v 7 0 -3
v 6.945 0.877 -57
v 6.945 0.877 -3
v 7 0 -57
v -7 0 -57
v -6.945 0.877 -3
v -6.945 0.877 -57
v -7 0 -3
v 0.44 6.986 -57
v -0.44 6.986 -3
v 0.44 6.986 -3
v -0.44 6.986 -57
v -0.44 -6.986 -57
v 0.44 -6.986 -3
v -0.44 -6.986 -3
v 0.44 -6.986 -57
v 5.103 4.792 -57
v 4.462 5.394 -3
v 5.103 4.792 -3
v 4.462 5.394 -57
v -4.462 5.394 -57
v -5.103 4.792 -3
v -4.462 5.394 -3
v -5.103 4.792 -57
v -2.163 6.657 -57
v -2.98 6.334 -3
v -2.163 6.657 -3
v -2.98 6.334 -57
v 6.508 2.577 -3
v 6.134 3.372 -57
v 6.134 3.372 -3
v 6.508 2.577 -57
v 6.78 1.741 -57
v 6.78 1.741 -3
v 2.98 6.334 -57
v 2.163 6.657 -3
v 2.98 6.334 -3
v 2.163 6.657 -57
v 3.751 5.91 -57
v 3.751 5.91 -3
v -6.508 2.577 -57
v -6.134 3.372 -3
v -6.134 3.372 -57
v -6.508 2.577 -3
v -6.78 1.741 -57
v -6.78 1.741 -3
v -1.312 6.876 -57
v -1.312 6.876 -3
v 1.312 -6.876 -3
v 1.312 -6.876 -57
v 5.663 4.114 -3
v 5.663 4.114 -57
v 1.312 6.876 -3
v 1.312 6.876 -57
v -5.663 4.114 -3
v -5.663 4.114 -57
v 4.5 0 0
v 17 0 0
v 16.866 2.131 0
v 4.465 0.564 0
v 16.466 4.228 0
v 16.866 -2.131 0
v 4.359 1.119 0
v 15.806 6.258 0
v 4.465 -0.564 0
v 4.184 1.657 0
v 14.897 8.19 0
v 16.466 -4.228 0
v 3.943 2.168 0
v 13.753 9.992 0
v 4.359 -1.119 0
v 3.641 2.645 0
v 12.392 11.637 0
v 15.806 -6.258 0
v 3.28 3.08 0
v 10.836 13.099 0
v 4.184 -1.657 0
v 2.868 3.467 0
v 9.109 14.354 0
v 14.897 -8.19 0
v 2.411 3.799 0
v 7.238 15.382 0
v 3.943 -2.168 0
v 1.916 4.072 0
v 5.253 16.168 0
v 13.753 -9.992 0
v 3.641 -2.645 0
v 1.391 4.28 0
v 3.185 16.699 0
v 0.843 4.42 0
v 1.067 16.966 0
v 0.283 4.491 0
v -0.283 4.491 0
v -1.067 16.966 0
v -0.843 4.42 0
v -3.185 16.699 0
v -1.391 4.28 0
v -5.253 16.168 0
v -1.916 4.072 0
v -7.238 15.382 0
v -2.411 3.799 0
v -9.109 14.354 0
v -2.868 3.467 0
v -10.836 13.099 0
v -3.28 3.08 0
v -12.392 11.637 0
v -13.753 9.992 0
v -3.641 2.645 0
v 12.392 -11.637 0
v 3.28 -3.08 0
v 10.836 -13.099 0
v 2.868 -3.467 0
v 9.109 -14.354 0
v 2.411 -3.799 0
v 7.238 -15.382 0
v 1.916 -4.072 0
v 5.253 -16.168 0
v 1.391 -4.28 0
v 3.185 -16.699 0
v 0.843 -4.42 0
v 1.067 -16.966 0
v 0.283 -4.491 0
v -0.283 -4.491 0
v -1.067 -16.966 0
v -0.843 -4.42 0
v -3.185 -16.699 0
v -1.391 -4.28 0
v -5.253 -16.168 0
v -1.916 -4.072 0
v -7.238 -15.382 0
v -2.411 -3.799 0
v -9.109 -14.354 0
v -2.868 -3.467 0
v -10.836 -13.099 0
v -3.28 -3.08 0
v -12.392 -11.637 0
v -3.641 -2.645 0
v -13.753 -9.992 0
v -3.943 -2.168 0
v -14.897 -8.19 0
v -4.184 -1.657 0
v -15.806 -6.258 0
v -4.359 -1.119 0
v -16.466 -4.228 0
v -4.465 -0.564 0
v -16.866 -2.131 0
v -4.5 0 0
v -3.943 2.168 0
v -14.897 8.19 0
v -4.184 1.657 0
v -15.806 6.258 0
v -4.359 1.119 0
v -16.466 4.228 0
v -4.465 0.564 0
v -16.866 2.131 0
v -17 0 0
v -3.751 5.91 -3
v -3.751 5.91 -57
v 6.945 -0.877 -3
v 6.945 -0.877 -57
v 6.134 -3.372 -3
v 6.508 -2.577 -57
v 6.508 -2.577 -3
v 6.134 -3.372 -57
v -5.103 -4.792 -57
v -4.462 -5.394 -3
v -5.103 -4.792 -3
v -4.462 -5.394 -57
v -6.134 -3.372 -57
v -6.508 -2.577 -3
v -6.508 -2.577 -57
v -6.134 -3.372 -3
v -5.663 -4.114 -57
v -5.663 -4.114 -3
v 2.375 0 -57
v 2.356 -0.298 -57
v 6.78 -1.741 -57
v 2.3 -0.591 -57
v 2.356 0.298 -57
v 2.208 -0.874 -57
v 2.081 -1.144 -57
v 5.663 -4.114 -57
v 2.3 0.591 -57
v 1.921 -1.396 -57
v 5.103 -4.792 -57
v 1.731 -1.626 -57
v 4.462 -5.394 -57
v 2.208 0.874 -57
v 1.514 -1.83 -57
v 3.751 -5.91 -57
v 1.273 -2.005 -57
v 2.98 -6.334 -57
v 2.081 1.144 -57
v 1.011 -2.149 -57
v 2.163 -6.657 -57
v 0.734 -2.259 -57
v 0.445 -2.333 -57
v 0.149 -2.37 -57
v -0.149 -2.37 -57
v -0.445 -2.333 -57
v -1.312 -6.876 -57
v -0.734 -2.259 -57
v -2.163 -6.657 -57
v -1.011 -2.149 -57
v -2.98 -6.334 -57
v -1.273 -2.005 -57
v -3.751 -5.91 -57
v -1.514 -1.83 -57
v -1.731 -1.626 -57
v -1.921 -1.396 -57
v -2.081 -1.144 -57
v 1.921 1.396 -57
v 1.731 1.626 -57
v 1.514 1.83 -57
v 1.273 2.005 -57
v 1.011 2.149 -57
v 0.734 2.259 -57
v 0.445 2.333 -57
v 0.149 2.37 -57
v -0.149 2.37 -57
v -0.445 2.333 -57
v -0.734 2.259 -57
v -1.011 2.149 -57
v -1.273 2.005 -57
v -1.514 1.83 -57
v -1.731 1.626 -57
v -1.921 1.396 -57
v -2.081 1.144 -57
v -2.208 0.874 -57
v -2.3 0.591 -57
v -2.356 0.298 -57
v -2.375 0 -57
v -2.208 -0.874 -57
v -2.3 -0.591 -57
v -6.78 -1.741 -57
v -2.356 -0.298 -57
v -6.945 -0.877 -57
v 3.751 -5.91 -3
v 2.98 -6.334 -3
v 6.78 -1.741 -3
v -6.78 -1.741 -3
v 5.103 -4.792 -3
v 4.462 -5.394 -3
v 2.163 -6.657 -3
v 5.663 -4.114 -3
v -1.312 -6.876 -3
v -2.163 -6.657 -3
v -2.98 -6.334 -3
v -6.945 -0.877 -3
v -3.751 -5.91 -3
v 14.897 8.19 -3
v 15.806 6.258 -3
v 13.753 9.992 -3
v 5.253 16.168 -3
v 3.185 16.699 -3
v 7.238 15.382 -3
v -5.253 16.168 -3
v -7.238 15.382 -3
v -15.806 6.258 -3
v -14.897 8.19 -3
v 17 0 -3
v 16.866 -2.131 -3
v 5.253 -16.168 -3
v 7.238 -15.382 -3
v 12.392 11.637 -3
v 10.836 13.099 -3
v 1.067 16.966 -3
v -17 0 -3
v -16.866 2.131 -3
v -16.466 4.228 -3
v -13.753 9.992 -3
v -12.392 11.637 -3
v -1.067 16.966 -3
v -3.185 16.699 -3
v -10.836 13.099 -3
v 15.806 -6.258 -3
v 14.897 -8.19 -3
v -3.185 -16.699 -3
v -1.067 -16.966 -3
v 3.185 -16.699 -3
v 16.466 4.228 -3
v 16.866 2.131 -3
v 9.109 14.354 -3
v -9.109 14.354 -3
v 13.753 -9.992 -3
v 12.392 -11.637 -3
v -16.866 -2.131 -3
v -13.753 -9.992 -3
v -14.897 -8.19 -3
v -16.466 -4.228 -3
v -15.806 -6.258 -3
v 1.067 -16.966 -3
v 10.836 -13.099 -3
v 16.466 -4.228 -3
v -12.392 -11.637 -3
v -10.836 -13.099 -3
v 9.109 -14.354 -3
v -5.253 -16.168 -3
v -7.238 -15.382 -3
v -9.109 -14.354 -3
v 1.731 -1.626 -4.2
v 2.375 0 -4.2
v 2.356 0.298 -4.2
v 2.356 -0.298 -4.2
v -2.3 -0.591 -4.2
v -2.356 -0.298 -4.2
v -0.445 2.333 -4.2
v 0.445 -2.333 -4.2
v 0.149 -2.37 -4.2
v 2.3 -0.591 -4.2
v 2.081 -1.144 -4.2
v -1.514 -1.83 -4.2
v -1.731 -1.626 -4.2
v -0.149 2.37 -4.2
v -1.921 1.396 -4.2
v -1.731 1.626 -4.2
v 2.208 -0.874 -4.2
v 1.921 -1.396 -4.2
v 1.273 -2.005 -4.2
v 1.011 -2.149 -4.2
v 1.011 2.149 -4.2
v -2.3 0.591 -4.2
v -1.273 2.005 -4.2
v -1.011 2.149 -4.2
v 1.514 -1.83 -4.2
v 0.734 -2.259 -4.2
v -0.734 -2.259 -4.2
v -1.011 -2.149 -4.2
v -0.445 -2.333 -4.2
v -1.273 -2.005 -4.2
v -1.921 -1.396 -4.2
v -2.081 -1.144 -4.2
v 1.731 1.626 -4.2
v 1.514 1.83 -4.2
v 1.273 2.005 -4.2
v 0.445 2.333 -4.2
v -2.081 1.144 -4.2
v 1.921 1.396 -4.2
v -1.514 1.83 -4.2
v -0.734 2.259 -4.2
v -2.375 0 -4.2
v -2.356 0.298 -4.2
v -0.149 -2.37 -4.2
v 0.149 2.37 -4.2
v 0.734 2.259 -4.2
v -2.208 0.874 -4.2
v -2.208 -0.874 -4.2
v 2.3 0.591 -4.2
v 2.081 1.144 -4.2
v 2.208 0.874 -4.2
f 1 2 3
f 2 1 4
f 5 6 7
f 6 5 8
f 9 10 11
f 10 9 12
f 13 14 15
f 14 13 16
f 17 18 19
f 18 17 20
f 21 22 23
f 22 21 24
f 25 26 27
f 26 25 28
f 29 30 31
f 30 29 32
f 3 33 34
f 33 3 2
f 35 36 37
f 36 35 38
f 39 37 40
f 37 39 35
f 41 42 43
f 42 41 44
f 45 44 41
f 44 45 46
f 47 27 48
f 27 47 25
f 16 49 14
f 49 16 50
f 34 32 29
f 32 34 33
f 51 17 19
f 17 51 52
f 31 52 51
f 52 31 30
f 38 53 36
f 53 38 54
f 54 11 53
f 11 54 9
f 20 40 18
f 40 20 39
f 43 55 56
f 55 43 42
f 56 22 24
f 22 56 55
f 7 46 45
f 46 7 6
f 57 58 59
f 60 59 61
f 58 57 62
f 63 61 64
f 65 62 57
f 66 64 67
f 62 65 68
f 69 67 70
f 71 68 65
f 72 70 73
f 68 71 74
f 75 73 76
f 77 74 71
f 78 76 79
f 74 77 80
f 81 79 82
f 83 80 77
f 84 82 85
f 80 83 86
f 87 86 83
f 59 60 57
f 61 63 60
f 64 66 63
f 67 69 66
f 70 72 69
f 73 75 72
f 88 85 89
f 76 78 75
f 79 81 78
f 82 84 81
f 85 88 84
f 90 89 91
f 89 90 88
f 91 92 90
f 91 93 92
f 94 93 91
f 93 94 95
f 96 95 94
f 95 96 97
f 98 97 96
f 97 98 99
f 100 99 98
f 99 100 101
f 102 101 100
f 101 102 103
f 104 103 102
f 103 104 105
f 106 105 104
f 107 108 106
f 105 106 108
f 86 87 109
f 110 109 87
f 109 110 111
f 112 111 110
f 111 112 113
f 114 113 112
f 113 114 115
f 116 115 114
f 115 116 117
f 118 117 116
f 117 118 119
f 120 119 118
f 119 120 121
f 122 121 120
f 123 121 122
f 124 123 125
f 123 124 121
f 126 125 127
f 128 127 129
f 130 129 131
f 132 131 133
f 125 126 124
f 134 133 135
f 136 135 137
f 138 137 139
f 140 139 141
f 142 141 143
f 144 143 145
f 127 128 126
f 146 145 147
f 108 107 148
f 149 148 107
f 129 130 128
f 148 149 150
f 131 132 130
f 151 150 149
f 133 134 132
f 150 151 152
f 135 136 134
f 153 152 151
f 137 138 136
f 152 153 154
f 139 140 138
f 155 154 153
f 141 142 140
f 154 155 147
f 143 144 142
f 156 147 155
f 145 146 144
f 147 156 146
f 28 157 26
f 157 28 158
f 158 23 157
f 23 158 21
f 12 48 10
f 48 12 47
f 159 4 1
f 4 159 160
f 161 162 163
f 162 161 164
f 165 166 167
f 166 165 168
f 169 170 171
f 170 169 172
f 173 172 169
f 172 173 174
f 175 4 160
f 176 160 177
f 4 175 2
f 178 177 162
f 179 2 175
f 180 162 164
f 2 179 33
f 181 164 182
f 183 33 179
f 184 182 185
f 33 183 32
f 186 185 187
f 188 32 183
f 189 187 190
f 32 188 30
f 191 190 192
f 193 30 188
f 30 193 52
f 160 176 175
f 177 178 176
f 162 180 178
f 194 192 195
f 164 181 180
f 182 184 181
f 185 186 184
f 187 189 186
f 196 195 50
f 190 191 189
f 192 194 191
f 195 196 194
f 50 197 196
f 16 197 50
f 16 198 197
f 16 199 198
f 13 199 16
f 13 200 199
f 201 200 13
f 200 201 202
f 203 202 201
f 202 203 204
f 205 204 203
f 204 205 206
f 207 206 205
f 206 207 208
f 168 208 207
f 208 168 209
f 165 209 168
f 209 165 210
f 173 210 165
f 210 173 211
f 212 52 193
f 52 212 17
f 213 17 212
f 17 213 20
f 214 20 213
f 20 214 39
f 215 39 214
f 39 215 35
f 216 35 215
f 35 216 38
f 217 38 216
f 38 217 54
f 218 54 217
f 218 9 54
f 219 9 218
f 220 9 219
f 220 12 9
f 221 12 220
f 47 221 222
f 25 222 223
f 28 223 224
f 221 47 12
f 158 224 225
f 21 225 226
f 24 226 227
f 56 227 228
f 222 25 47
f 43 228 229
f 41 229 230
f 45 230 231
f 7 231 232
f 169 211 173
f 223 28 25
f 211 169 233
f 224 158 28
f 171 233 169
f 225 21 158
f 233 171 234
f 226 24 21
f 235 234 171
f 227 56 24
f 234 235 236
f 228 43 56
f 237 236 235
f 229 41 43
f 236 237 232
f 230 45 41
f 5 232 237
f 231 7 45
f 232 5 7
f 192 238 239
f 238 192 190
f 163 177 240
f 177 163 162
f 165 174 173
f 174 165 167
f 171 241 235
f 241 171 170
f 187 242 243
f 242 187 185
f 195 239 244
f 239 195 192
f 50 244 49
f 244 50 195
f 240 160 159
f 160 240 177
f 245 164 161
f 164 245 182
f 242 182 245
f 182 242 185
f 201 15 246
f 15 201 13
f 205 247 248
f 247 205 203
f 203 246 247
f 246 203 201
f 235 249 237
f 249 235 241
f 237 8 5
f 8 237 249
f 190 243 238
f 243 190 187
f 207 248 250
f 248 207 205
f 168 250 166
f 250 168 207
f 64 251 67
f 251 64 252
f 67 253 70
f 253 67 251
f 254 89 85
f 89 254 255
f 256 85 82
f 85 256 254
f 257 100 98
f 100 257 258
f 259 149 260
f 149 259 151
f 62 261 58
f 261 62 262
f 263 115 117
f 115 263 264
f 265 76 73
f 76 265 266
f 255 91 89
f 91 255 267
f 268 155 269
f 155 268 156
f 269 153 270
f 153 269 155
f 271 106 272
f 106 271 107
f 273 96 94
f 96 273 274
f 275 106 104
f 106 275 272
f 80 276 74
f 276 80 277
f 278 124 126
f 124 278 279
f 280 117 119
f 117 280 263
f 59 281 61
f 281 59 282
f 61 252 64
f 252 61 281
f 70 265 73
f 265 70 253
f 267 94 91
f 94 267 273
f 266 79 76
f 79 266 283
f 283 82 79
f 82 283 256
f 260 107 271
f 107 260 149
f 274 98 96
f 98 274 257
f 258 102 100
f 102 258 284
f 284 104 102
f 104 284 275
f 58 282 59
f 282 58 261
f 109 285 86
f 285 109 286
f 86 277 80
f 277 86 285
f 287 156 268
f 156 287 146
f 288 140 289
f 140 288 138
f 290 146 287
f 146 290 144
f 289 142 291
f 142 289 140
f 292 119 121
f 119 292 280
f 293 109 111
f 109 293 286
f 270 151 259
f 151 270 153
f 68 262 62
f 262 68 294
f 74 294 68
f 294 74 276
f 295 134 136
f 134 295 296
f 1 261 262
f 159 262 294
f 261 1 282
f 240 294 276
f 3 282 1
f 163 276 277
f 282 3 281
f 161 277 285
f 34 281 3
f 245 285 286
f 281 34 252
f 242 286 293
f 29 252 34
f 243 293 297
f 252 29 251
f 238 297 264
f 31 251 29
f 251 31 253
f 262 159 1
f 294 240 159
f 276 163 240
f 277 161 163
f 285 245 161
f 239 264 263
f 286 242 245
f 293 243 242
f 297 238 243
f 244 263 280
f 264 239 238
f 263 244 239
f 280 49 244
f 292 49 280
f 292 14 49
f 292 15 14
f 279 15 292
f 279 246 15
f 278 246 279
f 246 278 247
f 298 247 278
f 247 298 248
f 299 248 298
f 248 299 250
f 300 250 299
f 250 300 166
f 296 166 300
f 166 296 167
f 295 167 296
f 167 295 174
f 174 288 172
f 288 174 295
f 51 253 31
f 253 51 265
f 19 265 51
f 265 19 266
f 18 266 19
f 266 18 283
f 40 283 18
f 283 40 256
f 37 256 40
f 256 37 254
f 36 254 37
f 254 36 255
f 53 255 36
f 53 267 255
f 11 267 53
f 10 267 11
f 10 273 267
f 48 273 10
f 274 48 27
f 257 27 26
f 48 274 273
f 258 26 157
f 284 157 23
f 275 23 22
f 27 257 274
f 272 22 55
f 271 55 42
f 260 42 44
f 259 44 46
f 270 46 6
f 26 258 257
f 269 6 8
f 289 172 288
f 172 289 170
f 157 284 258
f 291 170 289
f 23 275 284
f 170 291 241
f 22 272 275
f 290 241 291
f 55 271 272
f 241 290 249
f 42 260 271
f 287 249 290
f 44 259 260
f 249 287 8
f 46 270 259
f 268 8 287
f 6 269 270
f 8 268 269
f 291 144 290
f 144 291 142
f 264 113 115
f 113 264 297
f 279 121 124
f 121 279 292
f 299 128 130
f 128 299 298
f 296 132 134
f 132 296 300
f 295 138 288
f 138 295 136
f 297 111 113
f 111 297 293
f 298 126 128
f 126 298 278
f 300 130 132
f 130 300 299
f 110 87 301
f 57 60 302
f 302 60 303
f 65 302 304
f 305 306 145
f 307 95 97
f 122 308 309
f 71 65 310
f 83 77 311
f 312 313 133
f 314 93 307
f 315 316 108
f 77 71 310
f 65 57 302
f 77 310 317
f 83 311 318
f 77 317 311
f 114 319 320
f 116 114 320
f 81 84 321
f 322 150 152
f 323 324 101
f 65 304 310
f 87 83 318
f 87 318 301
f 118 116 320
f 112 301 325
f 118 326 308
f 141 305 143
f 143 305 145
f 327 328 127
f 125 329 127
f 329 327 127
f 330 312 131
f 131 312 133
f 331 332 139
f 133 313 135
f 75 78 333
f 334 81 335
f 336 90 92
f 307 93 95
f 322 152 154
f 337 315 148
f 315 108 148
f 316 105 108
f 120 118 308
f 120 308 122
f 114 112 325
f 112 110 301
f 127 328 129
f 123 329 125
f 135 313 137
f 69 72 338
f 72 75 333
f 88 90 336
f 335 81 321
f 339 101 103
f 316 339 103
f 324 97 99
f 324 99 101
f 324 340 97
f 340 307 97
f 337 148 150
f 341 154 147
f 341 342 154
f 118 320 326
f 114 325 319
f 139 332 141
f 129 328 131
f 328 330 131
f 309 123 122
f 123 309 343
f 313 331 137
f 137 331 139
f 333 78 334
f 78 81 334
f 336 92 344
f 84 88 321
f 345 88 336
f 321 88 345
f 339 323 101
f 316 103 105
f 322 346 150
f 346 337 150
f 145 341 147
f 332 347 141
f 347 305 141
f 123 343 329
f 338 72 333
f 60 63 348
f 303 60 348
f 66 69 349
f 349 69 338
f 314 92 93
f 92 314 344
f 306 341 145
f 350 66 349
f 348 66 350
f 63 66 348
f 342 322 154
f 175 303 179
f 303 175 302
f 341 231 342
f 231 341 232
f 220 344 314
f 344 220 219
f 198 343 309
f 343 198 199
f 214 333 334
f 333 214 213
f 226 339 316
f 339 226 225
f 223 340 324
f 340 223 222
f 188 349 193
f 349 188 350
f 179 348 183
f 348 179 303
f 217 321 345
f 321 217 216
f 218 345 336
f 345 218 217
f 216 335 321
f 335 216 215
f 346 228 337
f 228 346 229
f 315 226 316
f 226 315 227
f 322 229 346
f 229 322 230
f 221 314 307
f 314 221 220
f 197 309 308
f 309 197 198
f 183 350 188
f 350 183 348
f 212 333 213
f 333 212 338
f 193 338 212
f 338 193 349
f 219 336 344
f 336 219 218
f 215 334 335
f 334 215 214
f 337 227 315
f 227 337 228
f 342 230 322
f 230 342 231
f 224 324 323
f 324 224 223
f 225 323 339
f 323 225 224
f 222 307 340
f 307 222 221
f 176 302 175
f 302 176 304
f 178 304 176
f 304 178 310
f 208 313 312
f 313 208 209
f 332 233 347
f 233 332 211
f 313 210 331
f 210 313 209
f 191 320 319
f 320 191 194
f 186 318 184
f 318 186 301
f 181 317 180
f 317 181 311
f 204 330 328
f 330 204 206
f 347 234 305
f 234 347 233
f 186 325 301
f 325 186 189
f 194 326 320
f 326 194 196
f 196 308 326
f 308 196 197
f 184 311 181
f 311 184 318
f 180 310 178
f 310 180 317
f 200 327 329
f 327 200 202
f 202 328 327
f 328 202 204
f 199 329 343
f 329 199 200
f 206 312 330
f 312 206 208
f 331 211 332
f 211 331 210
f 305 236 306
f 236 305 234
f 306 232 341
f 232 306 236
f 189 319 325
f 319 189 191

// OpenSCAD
$fn = 50;


difference() {
	union() {
		translate(v = [0, 0, -57.0000000000]) {
			cylinder(h = 57, r = 7.0000000000);
		}
		translate(v = [0, 0, -3.0000000000]) {
			cylinder(h = 3, r = 17.0000000000);
		}
	}
	union() {
		translate(v = [0, 0, 0]) {
			rotate(a = [0, 0, 0]) {
				difference() {
					union() {
						#translate(v = [0, 0, -57.0000000000]) {
							cylinder(h = 57, r = 2.2500000000);
						}
						#translate(v = [0, 0, -4.2000000000]) {
							cylinder(h = 4.2000000000, r = 7.0000000000, r1 = 2.3750000000, r2 = 4.5000000000);
						}
						#translate(v = [0, 0, -57.0000000000]) {
							cylinder(h = 57, r = 2.3750000000);
						}
						#translate(v = [0, 0, -57.0000000000]) {
							cylinder(h = 57, r = 2.2500000000);
						}
					}
					union();
				}
			}
		}
	}
}
